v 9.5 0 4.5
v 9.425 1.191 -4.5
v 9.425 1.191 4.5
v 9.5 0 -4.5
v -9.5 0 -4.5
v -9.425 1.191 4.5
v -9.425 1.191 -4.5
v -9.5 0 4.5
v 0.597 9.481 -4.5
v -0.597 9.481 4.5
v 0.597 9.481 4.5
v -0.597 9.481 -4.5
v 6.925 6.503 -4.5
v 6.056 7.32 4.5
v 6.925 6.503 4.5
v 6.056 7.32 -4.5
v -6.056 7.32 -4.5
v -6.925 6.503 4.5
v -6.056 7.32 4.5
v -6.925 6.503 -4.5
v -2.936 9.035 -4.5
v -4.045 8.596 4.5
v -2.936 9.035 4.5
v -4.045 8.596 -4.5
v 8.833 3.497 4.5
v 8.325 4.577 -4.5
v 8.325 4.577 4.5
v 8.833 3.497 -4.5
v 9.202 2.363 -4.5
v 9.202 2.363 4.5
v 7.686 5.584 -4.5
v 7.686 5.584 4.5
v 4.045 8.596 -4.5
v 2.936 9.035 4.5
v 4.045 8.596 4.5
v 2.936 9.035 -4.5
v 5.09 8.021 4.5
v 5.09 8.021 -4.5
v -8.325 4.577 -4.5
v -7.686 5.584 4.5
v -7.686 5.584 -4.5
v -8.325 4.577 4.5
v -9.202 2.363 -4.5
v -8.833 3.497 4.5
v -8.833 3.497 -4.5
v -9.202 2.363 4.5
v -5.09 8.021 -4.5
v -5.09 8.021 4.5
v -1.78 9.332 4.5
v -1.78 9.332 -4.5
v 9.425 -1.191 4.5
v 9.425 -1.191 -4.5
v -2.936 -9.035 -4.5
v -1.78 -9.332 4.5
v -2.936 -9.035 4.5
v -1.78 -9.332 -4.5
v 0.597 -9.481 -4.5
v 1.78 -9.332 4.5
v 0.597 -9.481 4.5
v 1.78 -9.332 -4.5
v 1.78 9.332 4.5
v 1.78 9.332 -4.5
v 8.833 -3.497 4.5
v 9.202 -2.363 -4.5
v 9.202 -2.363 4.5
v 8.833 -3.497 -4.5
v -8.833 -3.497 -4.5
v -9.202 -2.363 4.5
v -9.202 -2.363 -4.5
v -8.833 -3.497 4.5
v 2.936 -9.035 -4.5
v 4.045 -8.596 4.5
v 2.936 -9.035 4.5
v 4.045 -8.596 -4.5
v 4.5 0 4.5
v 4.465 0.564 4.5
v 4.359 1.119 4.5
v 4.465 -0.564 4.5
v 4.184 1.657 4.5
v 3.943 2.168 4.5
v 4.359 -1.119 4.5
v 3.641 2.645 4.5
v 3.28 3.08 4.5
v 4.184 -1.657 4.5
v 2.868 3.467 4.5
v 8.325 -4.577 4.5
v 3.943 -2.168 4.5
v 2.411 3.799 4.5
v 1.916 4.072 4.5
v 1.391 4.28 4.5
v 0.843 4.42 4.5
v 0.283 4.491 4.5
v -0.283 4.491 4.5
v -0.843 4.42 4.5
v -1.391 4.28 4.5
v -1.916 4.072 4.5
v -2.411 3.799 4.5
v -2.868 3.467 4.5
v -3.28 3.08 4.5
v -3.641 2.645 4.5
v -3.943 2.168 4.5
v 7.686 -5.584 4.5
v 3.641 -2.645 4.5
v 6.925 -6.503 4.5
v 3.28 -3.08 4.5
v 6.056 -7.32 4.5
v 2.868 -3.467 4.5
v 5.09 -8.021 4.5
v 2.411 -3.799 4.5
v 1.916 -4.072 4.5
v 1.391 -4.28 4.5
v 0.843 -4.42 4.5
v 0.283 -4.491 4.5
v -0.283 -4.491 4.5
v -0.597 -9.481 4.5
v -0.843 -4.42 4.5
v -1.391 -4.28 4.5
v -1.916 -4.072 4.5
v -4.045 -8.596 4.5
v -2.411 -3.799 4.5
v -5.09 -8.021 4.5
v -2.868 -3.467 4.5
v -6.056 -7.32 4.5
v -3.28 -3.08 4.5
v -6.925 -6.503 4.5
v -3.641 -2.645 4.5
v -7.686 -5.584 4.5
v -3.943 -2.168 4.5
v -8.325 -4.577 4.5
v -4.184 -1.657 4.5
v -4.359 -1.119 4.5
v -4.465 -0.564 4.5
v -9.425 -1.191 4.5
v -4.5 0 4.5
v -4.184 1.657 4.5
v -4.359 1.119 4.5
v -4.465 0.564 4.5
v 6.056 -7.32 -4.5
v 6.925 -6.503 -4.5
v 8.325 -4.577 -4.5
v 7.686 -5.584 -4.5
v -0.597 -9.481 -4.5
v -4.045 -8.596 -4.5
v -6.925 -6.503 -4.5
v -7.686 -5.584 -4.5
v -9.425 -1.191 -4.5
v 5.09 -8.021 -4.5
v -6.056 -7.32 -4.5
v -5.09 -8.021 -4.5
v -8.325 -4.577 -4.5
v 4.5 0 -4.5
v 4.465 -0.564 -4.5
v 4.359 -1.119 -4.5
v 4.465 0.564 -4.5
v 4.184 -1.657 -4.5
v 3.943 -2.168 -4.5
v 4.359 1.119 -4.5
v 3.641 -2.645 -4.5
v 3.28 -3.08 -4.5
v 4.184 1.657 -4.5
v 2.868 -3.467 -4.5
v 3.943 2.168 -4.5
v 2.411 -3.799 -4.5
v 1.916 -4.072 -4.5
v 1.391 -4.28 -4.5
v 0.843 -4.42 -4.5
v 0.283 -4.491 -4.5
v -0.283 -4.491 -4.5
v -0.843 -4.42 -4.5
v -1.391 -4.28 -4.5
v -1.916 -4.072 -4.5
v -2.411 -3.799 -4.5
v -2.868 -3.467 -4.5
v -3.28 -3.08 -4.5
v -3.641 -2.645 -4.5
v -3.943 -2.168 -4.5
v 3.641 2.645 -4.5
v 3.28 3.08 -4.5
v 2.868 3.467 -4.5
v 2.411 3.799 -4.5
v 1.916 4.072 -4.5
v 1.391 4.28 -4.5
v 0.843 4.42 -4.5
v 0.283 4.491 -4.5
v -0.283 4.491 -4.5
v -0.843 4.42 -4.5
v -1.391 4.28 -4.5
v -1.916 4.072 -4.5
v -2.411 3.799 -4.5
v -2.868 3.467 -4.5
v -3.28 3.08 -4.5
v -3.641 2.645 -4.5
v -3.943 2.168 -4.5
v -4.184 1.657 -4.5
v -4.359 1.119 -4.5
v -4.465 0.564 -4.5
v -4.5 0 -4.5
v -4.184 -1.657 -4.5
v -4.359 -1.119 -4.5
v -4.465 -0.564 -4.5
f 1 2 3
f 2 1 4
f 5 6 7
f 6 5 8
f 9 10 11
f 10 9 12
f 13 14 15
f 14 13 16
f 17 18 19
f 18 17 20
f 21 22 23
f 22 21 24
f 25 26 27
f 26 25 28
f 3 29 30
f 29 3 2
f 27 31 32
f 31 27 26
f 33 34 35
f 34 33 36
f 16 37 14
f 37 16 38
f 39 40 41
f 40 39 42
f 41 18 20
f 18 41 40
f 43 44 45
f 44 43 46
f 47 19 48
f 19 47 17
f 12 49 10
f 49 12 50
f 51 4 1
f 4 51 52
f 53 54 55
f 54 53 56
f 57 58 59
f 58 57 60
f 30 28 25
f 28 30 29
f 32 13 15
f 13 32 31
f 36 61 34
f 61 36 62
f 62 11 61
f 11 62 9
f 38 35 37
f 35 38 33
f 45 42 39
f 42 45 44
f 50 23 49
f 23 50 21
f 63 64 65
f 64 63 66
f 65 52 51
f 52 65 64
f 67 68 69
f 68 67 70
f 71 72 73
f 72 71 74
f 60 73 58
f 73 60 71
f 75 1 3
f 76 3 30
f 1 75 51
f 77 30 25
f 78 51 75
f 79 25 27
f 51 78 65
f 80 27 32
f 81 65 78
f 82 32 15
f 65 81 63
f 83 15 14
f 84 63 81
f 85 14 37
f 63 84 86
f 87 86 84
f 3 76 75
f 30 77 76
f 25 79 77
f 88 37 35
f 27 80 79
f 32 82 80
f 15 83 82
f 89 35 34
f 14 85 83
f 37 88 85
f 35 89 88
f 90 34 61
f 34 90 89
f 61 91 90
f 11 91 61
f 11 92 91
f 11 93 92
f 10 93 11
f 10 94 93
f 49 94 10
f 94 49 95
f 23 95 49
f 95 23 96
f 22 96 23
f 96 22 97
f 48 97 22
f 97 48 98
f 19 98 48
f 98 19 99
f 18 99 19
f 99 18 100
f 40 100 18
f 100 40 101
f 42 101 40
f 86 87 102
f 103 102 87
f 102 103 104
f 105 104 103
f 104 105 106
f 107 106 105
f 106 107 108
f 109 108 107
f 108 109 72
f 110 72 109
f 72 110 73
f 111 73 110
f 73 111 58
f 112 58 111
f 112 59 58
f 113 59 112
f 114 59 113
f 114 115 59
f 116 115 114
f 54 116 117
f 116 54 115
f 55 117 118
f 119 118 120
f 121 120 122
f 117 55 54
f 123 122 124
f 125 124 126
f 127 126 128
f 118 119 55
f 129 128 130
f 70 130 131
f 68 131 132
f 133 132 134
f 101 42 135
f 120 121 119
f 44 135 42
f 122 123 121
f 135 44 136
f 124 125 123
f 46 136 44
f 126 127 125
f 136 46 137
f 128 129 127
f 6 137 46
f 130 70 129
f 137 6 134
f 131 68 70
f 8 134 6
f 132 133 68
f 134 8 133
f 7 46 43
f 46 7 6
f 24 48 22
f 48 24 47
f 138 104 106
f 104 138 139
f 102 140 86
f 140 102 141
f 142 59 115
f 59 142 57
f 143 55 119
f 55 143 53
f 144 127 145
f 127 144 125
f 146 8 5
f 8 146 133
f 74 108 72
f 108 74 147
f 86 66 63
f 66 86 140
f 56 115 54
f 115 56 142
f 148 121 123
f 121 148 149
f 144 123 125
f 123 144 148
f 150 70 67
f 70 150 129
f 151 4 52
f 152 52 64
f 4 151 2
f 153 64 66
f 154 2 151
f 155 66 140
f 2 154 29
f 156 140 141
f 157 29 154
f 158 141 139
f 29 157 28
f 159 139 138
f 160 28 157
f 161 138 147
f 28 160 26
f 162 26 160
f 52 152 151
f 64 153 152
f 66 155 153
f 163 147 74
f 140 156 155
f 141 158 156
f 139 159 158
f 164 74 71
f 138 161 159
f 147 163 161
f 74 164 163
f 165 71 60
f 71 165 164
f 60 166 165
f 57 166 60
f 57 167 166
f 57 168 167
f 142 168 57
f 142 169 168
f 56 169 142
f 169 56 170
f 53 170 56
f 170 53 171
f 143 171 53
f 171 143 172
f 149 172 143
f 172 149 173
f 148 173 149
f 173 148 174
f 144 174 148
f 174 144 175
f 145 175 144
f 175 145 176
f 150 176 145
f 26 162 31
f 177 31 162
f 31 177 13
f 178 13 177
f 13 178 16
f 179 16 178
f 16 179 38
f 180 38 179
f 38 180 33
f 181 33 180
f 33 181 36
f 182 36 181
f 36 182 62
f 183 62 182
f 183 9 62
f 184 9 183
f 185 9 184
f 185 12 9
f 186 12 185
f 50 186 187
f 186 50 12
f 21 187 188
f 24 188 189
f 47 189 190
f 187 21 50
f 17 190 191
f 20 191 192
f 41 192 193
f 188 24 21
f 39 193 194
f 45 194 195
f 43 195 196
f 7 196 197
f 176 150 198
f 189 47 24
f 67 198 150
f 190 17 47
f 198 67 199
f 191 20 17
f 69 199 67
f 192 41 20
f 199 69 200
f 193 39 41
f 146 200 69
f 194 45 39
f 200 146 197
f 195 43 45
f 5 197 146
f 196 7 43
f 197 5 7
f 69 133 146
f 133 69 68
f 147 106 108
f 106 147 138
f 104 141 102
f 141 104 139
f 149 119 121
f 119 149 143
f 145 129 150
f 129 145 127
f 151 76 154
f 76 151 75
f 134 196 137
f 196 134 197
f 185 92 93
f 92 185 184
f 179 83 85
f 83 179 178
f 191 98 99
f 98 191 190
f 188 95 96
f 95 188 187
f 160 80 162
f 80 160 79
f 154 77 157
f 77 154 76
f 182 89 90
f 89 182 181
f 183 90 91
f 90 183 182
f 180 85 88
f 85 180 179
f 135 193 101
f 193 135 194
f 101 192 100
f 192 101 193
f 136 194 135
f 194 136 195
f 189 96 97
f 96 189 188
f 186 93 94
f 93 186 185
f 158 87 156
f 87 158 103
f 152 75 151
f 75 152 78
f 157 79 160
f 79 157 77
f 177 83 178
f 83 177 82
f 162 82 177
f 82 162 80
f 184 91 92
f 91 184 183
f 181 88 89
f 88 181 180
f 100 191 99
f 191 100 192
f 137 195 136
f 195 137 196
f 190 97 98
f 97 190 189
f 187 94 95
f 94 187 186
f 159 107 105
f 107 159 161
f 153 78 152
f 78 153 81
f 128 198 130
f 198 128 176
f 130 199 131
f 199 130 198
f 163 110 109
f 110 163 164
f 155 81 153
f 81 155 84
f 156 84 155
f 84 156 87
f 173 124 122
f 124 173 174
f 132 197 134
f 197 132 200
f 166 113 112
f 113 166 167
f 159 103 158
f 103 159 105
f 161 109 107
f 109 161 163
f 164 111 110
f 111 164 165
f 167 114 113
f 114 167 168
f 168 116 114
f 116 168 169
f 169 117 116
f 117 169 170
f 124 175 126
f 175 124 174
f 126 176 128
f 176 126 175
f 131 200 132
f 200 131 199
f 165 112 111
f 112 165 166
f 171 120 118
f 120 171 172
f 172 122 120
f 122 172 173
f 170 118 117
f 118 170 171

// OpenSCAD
$fn = 50;


difference() {
	union() {
		translate(v = [0, 0, -4.5000000000]) {
			cylinder(h = 9, r = 9.5000000000);
		}
	}
	union() {
		translate(v = [0, 0, -100.0000000000]) {
			cylinder(h = 200, r = 4.5000000000);
		}
	}
}
